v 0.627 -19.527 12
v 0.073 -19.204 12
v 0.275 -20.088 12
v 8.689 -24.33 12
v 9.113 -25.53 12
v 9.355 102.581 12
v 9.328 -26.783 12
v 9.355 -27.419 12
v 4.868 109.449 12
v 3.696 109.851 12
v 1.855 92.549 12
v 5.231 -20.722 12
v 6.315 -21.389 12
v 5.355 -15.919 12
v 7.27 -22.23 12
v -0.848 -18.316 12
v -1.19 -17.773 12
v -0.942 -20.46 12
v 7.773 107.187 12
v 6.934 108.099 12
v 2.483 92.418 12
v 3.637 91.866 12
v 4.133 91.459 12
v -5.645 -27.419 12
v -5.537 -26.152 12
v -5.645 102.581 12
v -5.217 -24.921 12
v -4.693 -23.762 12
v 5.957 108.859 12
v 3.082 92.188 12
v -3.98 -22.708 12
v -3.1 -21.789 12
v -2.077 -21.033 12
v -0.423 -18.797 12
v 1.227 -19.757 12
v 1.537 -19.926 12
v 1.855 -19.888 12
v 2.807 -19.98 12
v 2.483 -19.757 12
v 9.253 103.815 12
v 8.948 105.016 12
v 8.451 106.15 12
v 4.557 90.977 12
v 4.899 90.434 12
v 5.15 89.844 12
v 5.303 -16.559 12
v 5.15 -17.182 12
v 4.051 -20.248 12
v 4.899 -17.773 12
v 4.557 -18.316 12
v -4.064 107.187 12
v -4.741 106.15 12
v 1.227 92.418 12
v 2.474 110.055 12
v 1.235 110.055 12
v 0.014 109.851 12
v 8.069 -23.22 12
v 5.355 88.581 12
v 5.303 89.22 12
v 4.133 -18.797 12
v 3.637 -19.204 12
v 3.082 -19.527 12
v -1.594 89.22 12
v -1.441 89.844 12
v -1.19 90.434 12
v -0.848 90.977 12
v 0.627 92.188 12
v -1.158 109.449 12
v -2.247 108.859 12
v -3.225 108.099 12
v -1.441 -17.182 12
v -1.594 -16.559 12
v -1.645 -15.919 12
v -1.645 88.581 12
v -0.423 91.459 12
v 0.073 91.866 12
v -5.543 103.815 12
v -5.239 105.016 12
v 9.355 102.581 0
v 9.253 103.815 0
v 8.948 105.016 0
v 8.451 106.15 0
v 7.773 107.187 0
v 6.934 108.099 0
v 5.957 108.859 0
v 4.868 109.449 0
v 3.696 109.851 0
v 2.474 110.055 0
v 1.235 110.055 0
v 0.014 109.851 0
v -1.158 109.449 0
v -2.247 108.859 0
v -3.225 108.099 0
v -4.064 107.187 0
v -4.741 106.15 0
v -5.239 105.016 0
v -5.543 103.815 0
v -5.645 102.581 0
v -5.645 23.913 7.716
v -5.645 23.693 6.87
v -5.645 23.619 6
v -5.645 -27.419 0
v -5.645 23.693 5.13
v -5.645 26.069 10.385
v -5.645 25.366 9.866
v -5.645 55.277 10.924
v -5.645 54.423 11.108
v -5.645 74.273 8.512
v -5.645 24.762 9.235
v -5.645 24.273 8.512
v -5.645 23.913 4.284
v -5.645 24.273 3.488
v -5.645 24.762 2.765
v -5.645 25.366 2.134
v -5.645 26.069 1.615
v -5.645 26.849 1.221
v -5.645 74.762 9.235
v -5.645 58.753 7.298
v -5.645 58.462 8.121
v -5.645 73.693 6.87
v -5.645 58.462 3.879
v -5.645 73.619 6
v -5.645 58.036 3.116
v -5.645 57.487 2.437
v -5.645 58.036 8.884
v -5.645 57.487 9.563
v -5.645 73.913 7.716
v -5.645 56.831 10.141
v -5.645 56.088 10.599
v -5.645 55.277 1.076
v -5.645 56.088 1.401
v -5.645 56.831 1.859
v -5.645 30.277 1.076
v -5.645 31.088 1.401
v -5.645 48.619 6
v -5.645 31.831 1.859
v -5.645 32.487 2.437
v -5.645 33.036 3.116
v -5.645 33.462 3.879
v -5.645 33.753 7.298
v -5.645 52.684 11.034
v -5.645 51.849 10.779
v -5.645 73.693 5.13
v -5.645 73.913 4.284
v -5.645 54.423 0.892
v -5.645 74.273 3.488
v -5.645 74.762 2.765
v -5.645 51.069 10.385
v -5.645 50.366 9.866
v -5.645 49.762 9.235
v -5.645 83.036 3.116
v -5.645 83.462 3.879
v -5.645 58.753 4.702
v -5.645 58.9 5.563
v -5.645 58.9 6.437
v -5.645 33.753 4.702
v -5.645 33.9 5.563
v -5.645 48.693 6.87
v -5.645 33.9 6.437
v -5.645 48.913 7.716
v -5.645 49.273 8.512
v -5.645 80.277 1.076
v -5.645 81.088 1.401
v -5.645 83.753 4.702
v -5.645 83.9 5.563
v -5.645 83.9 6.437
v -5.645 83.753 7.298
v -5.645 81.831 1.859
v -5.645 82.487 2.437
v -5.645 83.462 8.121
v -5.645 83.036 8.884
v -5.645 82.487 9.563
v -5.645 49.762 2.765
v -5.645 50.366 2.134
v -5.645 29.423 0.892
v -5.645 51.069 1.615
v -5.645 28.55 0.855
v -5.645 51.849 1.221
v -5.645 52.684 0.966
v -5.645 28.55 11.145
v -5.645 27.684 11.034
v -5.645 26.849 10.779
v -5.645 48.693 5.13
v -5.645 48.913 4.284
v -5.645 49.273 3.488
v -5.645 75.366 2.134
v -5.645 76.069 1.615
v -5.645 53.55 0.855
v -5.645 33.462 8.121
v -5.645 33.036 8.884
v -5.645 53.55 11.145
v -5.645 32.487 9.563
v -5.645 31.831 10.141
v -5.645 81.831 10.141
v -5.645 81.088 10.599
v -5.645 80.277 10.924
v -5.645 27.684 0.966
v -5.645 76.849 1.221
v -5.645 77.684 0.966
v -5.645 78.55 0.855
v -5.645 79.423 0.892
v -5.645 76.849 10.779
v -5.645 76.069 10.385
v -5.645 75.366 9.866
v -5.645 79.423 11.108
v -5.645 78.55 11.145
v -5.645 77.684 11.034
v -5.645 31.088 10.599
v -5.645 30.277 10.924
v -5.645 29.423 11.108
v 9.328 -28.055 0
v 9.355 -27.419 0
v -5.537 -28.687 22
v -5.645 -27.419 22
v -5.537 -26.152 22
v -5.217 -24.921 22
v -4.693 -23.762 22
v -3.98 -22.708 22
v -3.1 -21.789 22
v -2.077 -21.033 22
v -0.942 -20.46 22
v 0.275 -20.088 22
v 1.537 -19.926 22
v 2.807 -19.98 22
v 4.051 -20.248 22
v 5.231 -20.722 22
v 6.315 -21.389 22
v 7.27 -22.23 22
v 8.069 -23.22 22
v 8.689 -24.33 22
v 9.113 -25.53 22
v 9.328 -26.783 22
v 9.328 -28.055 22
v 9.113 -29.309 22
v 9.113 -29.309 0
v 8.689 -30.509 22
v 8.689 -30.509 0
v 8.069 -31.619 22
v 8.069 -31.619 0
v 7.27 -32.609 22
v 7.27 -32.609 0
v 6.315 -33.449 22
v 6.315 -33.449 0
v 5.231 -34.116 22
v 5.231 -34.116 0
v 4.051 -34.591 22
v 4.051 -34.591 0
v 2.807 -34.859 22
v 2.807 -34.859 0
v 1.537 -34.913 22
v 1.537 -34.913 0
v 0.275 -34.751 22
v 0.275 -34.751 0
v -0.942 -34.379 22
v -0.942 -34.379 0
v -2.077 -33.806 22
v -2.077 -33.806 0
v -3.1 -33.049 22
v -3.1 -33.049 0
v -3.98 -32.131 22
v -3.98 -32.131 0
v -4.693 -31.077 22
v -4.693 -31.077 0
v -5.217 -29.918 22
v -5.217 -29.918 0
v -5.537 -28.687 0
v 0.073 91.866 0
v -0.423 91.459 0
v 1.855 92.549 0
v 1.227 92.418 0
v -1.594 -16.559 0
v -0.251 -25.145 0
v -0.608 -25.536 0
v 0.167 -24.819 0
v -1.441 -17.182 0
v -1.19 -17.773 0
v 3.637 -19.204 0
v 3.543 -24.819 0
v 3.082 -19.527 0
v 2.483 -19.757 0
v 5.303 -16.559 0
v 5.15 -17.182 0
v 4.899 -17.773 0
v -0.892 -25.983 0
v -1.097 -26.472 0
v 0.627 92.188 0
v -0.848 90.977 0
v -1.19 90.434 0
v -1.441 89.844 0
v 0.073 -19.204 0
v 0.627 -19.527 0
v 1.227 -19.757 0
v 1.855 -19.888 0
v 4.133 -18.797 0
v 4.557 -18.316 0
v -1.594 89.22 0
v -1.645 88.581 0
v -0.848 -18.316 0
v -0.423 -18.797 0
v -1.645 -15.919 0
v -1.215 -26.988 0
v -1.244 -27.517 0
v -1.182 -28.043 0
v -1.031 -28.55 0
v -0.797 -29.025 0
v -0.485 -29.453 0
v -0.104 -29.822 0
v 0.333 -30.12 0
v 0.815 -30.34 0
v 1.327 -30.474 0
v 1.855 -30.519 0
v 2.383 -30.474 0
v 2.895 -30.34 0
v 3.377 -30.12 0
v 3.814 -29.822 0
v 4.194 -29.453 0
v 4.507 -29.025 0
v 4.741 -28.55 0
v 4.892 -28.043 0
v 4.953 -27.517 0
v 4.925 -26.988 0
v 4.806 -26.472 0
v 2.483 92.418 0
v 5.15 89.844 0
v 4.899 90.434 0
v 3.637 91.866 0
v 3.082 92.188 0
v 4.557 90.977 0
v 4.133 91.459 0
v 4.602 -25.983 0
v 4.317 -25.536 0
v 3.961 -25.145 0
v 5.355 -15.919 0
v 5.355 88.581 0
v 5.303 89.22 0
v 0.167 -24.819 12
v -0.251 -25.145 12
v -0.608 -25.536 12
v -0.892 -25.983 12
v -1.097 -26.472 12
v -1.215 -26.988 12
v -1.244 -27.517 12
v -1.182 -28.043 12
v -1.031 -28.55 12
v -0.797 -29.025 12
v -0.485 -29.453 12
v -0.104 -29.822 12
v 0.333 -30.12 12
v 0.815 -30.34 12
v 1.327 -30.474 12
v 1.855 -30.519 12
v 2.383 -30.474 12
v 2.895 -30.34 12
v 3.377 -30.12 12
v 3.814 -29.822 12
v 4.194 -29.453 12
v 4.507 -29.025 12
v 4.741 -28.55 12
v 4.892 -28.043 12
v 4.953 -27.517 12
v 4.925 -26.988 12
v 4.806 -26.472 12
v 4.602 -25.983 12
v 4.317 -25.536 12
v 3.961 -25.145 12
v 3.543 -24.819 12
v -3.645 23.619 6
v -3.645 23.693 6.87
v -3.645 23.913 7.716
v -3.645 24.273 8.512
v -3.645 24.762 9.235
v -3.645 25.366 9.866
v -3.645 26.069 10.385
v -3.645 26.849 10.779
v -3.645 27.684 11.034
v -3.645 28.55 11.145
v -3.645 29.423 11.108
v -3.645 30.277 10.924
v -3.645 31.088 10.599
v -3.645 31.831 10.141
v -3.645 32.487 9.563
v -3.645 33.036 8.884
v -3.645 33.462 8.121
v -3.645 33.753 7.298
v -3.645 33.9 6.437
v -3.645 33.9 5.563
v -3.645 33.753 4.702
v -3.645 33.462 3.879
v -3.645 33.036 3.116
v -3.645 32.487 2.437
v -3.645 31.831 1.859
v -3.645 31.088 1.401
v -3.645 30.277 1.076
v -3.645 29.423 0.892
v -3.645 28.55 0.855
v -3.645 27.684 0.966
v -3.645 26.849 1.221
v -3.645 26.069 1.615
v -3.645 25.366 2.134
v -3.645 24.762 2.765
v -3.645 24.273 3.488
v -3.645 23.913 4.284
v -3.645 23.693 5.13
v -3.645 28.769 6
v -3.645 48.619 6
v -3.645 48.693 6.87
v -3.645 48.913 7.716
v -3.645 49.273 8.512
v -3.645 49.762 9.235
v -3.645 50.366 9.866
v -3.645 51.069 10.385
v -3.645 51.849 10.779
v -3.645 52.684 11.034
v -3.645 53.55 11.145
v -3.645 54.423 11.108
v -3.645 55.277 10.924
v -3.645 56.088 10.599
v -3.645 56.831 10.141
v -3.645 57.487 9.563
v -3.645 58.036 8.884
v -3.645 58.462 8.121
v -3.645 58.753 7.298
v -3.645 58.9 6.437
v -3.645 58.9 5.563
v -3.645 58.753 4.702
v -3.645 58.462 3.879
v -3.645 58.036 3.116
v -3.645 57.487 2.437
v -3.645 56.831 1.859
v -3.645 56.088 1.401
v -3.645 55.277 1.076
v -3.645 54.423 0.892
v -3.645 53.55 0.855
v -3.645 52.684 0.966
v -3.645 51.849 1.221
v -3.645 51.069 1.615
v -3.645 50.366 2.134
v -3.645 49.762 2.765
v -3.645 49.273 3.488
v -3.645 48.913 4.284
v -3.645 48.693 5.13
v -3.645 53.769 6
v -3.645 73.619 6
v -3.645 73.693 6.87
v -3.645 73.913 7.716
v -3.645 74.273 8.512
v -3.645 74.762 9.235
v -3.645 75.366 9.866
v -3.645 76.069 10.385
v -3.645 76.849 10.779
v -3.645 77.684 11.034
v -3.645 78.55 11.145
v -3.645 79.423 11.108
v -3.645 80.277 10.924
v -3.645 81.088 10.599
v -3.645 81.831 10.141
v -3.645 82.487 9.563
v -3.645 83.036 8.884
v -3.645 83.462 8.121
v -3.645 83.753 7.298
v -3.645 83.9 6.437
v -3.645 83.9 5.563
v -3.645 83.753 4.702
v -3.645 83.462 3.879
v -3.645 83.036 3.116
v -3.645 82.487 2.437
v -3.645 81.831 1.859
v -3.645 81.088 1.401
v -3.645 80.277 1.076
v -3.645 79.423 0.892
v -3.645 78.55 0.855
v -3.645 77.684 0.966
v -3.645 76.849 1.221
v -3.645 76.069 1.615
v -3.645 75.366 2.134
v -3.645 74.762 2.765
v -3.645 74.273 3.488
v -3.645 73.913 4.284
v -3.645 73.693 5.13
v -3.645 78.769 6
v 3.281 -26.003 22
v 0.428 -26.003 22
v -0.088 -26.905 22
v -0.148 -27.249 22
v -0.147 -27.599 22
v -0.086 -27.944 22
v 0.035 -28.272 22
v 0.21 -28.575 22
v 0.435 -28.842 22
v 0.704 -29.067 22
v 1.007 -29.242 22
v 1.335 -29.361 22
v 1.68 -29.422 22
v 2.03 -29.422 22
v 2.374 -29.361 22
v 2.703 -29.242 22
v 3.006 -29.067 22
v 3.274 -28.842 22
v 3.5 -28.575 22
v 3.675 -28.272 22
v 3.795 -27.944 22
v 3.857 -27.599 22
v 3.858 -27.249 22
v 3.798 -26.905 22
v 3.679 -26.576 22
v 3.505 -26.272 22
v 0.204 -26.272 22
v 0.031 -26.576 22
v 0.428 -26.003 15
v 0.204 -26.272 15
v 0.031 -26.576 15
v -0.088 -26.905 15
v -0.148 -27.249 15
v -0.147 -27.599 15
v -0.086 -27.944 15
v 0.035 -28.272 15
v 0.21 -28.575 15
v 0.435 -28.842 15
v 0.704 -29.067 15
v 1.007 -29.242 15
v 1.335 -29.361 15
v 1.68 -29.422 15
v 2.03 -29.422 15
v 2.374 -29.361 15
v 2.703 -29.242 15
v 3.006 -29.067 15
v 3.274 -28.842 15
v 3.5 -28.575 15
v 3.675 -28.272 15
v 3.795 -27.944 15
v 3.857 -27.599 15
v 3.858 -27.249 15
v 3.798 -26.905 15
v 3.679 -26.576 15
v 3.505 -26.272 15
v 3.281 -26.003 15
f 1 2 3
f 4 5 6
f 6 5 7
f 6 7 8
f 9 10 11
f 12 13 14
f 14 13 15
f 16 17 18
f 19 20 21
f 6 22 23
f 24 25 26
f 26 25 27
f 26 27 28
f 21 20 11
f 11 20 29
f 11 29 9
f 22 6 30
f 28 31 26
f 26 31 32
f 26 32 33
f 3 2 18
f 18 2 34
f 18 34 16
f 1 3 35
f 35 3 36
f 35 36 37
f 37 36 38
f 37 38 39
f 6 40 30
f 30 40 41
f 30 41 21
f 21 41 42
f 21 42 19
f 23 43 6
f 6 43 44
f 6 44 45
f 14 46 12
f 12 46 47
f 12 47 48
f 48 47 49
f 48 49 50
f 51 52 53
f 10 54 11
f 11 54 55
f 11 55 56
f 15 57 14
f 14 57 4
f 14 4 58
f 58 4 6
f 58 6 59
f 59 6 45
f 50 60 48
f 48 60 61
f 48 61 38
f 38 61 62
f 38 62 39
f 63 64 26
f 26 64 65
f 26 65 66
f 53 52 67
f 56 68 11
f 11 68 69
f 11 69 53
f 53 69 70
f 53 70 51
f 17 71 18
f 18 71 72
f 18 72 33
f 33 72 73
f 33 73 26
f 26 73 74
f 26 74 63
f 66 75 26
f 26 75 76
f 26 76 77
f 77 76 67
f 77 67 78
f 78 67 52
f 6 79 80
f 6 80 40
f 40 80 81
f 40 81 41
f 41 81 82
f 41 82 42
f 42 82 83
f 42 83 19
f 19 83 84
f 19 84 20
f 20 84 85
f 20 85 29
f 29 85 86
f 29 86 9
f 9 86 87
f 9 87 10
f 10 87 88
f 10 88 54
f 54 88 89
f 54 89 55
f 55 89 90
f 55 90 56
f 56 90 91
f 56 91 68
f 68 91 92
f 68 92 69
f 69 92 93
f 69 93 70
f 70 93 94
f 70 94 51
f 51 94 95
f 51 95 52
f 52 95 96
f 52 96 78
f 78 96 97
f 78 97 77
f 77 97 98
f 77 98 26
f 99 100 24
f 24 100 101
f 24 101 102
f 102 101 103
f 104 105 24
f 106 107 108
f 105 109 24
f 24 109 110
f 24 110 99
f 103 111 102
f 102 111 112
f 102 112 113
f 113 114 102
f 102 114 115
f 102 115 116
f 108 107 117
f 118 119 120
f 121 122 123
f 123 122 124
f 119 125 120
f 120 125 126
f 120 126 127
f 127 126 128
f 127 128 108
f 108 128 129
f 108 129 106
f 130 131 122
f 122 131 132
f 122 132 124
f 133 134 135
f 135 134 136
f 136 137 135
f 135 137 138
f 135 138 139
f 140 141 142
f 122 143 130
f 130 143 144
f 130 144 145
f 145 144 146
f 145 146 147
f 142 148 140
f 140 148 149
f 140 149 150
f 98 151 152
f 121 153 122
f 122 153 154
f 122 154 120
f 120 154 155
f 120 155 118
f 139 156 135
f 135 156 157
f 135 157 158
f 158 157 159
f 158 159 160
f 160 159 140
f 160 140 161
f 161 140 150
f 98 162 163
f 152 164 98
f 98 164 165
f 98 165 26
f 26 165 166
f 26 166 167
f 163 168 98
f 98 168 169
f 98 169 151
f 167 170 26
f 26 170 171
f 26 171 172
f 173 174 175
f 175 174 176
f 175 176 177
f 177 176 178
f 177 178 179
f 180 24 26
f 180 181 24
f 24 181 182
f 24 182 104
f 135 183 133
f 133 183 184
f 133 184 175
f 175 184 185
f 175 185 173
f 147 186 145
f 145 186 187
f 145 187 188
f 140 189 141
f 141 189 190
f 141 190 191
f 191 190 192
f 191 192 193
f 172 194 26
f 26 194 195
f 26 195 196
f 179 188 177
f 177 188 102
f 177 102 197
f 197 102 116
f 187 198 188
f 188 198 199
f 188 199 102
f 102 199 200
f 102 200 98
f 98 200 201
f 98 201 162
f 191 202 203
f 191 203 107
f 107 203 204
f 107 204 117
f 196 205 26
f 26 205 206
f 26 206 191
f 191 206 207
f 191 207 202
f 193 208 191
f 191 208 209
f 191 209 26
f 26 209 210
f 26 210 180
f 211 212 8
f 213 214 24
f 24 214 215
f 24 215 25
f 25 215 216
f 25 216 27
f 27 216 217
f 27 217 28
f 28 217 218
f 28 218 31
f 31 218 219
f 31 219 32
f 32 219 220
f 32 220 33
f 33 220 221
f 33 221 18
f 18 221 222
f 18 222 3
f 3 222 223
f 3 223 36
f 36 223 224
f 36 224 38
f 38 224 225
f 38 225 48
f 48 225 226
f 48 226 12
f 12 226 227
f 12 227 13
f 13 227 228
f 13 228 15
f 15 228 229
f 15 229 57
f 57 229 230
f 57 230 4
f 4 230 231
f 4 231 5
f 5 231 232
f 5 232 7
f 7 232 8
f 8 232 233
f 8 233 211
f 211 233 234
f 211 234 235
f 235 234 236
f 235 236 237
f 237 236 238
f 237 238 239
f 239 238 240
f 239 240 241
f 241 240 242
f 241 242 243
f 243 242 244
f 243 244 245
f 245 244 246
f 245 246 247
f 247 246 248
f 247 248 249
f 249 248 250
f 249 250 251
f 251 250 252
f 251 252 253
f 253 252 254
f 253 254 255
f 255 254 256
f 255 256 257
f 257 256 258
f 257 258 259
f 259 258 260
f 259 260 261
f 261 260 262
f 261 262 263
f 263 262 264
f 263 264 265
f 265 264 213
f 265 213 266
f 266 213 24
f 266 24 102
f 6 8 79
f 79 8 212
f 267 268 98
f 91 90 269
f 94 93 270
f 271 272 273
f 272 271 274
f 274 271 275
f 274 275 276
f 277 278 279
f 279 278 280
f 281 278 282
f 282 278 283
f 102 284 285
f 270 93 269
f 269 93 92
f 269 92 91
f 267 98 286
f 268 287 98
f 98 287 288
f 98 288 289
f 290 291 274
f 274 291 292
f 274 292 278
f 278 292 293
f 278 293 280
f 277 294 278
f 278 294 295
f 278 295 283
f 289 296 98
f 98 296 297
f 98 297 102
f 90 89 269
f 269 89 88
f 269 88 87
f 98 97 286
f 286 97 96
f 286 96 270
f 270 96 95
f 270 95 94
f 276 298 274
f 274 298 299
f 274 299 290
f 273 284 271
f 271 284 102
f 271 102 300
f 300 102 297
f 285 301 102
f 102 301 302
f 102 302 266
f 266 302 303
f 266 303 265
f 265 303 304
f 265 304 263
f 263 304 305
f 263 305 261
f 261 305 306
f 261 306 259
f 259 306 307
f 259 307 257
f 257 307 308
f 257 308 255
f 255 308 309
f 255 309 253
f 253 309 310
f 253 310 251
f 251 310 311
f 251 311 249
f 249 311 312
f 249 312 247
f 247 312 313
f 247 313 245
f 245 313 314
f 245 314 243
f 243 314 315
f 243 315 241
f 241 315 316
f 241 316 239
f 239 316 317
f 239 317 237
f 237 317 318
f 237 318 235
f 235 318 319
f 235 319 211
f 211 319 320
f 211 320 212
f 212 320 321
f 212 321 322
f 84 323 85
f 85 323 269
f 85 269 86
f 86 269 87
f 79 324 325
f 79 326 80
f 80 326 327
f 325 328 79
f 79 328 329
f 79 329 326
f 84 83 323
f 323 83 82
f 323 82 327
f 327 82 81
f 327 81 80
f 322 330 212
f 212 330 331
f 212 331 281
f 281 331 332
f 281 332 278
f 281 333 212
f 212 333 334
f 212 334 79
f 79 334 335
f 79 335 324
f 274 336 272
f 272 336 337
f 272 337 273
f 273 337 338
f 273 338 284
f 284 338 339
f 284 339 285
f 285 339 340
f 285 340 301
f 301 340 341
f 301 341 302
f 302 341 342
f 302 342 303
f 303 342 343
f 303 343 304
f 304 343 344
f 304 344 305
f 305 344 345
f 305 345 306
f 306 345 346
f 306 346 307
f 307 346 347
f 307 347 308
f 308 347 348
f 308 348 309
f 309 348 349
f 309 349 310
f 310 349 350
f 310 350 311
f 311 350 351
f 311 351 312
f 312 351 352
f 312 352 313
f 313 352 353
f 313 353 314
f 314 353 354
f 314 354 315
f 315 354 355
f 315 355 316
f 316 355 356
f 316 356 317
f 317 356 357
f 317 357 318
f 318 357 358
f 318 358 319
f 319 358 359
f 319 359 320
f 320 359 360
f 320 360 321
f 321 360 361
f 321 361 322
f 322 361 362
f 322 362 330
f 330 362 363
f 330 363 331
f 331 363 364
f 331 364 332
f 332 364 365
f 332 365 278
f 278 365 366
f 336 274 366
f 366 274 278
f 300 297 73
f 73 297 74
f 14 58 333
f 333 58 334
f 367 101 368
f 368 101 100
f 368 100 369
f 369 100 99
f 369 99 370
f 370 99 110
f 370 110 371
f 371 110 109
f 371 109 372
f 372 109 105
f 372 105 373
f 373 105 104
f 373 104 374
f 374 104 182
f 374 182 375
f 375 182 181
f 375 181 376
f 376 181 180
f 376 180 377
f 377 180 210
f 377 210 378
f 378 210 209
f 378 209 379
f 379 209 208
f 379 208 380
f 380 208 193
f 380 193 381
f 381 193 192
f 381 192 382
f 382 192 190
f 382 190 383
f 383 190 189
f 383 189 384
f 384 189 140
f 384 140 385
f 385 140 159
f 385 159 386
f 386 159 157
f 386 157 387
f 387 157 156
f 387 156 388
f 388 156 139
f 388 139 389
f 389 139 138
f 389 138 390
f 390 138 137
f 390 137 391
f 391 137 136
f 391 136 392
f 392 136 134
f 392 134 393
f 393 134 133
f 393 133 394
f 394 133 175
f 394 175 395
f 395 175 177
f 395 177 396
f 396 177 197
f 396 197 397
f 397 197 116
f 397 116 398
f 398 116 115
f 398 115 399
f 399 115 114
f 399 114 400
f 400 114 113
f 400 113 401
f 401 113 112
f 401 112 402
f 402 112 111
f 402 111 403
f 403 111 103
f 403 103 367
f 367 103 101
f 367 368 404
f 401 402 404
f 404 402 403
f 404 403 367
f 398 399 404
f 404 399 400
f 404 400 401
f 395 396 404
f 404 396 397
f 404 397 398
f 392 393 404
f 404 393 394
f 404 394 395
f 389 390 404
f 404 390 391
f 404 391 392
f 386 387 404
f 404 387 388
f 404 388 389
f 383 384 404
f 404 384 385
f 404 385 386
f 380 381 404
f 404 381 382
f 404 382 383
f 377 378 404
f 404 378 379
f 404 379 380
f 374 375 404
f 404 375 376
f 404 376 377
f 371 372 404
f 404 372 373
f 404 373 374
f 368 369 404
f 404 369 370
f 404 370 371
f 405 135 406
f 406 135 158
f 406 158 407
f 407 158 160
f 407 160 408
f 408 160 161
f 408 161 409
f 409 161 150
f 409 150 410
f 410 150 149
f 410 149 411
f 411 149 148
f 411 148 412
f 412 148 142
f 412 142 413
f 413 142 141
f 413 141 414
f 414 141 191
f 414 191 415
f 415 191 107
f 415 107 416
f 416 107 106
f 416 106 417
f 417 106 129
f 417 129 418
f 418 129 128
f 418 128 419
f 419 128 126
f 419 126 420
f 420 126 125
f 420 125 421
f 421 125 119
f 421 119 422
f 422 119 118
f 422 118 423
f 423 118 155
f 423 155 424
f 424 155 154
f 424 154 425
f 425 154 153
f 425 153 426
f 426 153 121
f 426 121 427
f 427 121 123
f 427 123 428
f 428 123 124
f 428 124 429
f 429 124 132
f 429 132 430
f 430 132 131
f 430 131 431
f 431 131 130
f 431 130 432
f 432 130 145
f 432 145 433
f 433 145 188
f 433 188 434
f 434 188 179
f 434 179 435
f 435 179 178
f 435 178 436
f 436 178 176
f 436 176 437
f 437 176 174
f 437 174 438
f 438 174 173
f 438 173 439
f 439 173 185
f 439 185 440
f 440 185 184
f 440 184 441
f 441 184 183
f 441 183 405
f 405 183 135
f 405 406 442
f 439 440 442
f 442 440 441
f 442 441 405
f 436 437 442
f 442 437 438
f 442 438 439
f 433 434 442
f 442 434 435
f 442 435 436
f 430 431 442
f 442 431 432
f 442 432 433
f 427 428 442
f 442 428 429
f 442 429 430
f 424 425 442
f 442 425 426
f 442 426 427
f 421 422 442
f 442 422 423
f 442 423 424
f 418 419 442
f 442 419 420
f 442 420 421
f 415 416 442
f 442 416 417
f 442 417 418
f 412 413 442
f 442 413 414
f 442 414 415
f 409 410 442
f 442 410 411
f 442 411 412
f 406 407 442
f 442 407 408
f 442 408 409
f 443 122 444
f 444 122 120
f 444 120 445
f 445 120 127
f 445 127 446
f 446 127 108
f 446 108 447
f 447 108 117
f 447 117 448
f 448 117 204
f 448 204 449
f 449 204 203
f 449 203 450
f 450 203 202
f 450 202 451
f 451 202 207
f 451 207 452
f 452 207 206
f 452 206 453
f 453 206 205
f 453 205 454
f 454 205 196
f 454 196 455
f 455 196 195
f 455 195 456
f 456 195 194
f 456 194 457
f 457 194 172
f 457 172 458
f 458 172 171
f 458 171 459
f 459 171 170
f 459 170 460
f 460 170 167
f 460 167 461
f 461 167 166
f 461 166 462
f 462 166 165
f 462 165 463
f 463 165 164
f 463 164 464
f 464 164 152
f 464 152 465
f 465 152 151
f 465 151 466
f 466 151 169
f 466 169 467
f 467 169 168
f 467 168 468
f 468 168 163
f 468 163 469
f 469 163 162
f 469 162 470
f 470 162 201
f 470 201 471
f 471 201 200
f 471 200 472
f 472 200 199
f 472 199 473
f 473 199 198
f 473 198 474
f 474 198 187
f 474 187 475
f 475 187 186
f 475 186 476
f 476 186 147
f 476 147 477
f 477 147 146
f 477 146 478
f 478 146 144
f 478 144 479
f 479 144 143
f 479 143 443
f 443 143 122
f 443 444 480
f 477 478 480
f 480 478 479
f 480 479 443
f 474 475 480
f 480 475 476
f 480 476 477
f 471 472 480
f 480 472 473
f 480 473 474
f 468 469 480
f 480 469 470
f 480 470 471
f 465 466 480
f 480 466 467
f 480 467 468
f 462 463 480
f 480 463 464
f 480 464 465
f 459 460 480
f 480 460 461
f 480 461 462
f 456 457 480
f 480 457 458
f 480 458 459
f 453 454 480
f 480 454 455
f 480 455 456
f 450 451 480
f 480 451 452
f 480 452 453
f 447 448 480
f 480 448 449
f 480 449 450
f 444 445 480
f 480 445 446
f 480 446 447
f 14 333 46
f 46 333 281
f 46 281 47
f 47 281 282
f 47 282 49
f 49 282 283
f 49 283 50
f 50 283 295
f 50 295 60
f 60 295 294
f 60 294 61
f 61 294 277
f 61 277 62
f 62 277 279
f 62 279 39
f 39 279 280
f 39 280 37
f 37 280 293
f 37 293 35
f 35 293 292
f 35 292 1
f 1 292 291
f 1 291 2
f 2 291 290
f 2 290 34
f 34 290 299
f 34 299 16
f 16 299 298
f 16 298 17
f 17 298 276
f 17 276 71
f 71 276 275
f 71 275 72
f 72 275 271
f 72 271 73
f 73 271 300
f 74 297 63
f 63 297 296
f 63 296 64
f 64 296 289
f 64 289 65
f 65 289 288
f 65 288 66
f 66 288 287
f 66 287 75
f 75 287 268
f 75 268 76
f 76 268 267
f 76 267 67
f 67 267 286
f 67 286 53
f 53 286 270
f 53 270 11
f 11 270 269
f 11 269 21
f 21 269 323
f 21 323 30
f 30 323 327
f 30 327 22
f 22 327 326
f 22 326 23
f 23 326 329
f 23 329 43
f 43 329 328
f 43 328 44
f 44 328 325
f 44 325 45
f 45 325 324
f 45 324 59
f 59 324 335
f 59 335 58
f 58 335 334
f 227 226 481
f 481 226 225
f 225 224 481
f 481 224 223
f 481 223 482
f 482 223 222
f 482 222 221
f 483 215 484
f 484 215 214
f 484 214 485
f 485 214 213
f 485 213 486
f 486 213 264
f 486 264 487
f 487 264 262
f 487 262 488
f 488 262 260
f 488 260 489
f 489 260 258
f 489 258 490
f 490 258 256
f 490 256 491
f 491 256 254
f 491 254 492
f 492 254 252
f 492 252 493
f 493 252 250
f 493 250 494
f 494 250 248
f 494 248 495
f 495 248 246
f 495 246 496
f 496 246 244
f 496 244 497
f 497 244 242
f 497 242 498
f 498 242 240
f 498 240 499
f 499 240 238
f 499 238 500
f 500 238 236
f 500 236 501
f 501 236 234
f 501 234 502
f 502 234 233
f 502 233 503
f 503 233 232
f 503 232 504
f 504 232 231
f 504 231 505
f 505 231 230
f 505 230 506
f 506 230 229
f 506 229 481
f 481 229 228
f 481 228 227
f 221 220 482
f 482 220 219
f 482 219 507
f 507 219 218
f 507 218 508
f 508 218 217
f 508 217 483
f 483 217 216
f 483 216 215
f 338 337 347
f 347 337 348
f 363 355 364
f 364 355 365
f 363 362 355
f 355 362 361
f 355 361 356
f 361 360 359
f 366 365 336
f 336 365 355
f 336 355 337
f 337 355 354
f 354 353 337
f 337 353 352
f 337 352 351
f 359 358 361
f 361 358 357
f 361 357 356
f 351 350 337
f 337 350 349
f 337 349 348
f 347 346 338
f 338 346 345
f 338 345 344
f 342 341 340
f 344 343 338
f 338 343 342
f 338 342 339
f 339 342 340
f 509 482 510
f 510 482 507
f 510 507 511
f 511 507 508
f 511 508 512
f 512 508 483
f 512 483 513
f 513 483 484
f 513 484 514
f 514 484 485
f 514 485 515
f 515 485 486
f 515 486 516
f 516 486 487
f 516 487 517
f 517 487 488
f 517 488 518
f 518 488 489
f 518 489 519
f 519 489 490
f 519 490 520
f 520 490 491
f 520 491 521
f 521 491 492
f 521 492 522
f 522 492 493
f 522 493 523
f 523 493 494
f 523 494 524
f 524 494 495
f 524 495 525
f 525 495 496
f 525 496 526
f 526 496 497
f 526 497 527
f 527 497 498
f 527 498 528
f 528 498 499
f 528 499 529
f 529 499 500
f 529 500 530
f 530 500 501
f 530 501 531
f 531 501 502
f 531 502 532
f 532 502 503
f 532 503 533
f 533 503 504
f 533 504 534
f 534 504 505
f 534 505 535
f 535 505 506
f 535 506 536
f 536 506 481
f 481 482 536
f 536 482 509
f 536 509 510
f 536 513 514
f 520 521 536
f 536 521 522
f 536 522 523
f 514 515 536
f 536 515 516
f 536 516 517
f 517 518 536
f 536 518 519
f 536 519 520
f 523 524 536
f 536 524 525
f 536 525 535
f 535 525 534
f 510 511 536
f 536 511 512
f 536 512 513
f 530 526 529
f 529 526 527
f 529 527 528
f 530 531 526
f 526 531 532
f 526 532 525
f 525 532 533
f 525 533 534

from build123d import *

# Parameters (mm, degrees)
BOSS_EXTRUDE1_DEPTH = 12
SKETCH2_R           = 3.1
BOSS_EXTRUDE2_DEPTH = 15
CUT_EXTRUDE1_START  = -50
CUT_EXTRUDE1_DEPTH  = 50
CUT_EXTRUDE2_START  = -15
CUT_EXTRUDE2_DEPTH  = 15
SKETCH5_W           = 7
SKETCH5_H           = 112.5
CUT_EXTRUDE3_DEPTH  = 12
SKETCH6_R           = 5.15
CUT_EXTRUDE4_DEPTH  = 2
FILLET1_R           = 4
BOSS_EXTRUDE3_DEPTH = 10
SKETCH9_R           = 2.1
CUT_EXTRUDE5_DEPTH  = 7
BOSS_EXTRUDE4_DEPTH = 7
SKETCH11_W          = 3.391399245
SKETCH11_H          = 0.49647288
BOSS_EXTRUDE7_DEPTH = 7
BOSS_EXTRUDE8_DEPTH = 10


with BuildPart() as part:
    # Sketch1 → Boss-Extrude1 (new body)
    with BuildSketch(Plane.XY):
        with BuildLine():
            Line((-5.64516129, 102.580645161), (-5.64516129, -27.419354839))
            ThreePointArc((-5.64516129, -27.419354839), (1.85483871, -34.919354839), (9.35483871, -27.419354839))
            Line((9.35483871, -27.419354839), (9.35483871, 102.580645161))
            ThreePointArc((9.35483871, 102.580645161), (1.85483871, 110.080645161), (-5.64516129, 102.580645161))
        make_face()
    extrude(amount=BOSS_EXTRUDE1_DEPTH)

    # Sketch2 → Boss-Extrude2 (add)
    with BuildSketch(Plane.XY.offset(12)):
        with Locations(Location((1.85483871, -27.419354839, 0), (0, 0, 180))):
            Circle(SKETCH2_R)
    extrude(amount=BOSS_EXTRUDE2_DEPTH)

    # Sketch3 → Cut-Extrude1 (cut)
    with BuildSketch(Plane.XY.offset(27).offset(CUT_EXTRUDE1_START)):
        with BuildLine():
            Line((0.166644408, -24.819354839), (3.543033011, -24.819354839))
            ThreePointArc((3.543033011, -24.819354839), (1.85483871, -30.519354839), (0.166644408, -24.819354839))
        make_face()
    extrude(amount=CUT_EXTRUDE1_DEPTH, mode=Mode.SUBTRACT)

    # Sketch4 → Cut-Extrude2 (cut)
    with BuildSketch(Plane.XY.offset(27).offset(CUT_EXTRUDE2_START)):
        with BuildLine():
            Line((0.166644408, -24.819354839), (3.543033011, -24.819354839))
            ThreePointArc((3.543033011, -24.819354839), (1.85483871, -24.319354839), (0.166644408, -24.819354839))
        make_face()
    extrude(amount=CUT_EXTRUDE2_DEPTH, mode=Mode.SUBTRACT)

    # Sketch5 → Cut-Extrude3 (cut)
    with BuildSketch(Plane.XY.offset(12)):
        with Locations((1.85483871, 36.330645161)):
            Rectangle(SKETCH5_W, SKETCH5_H)
    extrude(amount=-CUT_EXTRUDE3_DEPTH, mode=Mode.SUBTRACT)

    # Sketch6 → Cut-Extrude4 (cut)
    with BuildSketch(Plane.ZY.offset(5.64516129)):
        with Locations(Location((6, 78.768969581, 0), (0, 0, 270))):
            Circle(SKETCH6_R)
        with Locations(Location((6, 53.768969581, 0), (0, 0, 270))):
            Circle(SKETCH6_R)
        with Locations(Location((6, 28.768969581, 0), (0, 0, 270))):
            Circle(SKETCH6_R)
    extrude(amount=-CUT_EXTRUDE4_DEPTH, mode=Mode.SUBTRACT)

    # Fillet1
    # the kernel refuses this fillet: 4 mm, written as the material it adds along each edge
    with BuildSketch(Plane(origin=(-1.64516129, -19.919354839, 12), x_dir=(0, 1, 0), z_dir=(0, 0, -1)), Plane(origin=(5.35483871, -19.919354839, 12), x_dir=(-1, 0, 0), z_dir=(0, 0, -1)), Plane(origin=(5.35483871, 92.580645161, 12), x_dir=(0, -1, 0), z_dir=(0, 0, -1))) as fillet1_piece_1:
        with BuildLine():
            CenterArc((FILLET1_R, FILLET1_R), FILLET1_R, 180, 90)
            Line((0, FILLET1_R), (0, 0))
            Line((0, 0), (FILLET1_R, 0))
        make_face()
    extrude(amount=12)
    with BuildSketch(Plane(origin=(-1.64516129, 92.580645161, 12), x_dir=(0, -1, 0), z_dir=(0, 0, -1))) as fillet1_piece_2:
        with BuildLine():
            CenterArc((FILLET1_R, -FILLET1_R), FILLET1_R, 90, 90)
            Line((0, -FILLET1_R), (0, 0))
            Line((0, 0), (FILLET1_R, 0))
        make_face()
    extrude(amount=12)

    # Sketch7 → Boss-Extrude3 (add)
    with BuildSketch(Plane.XY.offset(12)):
        with BuildLine():
            ThreePointArc((-5.64516129, -27.419354839), (1.85483871, -34.919354839), (9.35483871, -27.419354839))
            ThreePointArc((9.35483871, -27.419354839), (1.85483871, -19.919354839), (-5.64516129, -27.419354839))
        make_face()
    extrude(amount=BOSS_EXTRUDE3_DEPTH)

    # Sketch9 → Cut-Extrude5 (cut)
    with BuildSketch(Plane.XY.offset(22)):
        with Locations((1.85483871, -27.419354839)):
            Circle(SKETCH9_R)
    extrude(amount=-CUT_EXTRUDE5_DEPTH, mode=Mode.SUBTRACT)

    # Sketch10 → Boss-Extrude4 (add)
    with BuildSketch(Plane.XY.offset(22)):
        with BuildLine():
            Line((0.694020033, -25.669354839), (3.015657386, -25.669354839))
            ThreePointArc((3.015657386, -25.669354839), (1.85483871, -25.319354839), (0.694020033, -25.669354839))
        make_face()
    extrude(amount=-BOSS_EXTRUDE4_DEPTH)

    # Sketch11 → Boss-Extrude7 (add)
    with BuildSketch(Plane.XY.offset(22)):
        with Locations((1.841860982, -25.665070635)):
            Rectangle(SKETCH11_W, SKETCH11_H)
    extrude(amount=-BOSS_EXTRUDE7_DEPTH)

    # Sketch12 → Boss-Extrude8 (add)
    with BuildSketch(Plane.XY.offset(22)):
        with BuildLine():
            Line((0.39134285, -25.913307075), (3.31833457, -25.913307075))
            ThreePointArc((3.31833457, -25.913307075), (1.85483871, -29.519354839), (0.39134285, -25.913307075))
        make_face()
        with BuildLine():
            Line((3.281340981, -26.003307075), (0.428336439, -26.003307075))
            ThreePointArc((0.428336439, -26.003307075), (1.85483871, -29.429354839), (3.281340981, -26.003307075))
        make_face(mode=Mode.SUBTRACT)
    extrude(amount=-BOSS_EXTRUDE8_DEPTH)


solid = part.part
